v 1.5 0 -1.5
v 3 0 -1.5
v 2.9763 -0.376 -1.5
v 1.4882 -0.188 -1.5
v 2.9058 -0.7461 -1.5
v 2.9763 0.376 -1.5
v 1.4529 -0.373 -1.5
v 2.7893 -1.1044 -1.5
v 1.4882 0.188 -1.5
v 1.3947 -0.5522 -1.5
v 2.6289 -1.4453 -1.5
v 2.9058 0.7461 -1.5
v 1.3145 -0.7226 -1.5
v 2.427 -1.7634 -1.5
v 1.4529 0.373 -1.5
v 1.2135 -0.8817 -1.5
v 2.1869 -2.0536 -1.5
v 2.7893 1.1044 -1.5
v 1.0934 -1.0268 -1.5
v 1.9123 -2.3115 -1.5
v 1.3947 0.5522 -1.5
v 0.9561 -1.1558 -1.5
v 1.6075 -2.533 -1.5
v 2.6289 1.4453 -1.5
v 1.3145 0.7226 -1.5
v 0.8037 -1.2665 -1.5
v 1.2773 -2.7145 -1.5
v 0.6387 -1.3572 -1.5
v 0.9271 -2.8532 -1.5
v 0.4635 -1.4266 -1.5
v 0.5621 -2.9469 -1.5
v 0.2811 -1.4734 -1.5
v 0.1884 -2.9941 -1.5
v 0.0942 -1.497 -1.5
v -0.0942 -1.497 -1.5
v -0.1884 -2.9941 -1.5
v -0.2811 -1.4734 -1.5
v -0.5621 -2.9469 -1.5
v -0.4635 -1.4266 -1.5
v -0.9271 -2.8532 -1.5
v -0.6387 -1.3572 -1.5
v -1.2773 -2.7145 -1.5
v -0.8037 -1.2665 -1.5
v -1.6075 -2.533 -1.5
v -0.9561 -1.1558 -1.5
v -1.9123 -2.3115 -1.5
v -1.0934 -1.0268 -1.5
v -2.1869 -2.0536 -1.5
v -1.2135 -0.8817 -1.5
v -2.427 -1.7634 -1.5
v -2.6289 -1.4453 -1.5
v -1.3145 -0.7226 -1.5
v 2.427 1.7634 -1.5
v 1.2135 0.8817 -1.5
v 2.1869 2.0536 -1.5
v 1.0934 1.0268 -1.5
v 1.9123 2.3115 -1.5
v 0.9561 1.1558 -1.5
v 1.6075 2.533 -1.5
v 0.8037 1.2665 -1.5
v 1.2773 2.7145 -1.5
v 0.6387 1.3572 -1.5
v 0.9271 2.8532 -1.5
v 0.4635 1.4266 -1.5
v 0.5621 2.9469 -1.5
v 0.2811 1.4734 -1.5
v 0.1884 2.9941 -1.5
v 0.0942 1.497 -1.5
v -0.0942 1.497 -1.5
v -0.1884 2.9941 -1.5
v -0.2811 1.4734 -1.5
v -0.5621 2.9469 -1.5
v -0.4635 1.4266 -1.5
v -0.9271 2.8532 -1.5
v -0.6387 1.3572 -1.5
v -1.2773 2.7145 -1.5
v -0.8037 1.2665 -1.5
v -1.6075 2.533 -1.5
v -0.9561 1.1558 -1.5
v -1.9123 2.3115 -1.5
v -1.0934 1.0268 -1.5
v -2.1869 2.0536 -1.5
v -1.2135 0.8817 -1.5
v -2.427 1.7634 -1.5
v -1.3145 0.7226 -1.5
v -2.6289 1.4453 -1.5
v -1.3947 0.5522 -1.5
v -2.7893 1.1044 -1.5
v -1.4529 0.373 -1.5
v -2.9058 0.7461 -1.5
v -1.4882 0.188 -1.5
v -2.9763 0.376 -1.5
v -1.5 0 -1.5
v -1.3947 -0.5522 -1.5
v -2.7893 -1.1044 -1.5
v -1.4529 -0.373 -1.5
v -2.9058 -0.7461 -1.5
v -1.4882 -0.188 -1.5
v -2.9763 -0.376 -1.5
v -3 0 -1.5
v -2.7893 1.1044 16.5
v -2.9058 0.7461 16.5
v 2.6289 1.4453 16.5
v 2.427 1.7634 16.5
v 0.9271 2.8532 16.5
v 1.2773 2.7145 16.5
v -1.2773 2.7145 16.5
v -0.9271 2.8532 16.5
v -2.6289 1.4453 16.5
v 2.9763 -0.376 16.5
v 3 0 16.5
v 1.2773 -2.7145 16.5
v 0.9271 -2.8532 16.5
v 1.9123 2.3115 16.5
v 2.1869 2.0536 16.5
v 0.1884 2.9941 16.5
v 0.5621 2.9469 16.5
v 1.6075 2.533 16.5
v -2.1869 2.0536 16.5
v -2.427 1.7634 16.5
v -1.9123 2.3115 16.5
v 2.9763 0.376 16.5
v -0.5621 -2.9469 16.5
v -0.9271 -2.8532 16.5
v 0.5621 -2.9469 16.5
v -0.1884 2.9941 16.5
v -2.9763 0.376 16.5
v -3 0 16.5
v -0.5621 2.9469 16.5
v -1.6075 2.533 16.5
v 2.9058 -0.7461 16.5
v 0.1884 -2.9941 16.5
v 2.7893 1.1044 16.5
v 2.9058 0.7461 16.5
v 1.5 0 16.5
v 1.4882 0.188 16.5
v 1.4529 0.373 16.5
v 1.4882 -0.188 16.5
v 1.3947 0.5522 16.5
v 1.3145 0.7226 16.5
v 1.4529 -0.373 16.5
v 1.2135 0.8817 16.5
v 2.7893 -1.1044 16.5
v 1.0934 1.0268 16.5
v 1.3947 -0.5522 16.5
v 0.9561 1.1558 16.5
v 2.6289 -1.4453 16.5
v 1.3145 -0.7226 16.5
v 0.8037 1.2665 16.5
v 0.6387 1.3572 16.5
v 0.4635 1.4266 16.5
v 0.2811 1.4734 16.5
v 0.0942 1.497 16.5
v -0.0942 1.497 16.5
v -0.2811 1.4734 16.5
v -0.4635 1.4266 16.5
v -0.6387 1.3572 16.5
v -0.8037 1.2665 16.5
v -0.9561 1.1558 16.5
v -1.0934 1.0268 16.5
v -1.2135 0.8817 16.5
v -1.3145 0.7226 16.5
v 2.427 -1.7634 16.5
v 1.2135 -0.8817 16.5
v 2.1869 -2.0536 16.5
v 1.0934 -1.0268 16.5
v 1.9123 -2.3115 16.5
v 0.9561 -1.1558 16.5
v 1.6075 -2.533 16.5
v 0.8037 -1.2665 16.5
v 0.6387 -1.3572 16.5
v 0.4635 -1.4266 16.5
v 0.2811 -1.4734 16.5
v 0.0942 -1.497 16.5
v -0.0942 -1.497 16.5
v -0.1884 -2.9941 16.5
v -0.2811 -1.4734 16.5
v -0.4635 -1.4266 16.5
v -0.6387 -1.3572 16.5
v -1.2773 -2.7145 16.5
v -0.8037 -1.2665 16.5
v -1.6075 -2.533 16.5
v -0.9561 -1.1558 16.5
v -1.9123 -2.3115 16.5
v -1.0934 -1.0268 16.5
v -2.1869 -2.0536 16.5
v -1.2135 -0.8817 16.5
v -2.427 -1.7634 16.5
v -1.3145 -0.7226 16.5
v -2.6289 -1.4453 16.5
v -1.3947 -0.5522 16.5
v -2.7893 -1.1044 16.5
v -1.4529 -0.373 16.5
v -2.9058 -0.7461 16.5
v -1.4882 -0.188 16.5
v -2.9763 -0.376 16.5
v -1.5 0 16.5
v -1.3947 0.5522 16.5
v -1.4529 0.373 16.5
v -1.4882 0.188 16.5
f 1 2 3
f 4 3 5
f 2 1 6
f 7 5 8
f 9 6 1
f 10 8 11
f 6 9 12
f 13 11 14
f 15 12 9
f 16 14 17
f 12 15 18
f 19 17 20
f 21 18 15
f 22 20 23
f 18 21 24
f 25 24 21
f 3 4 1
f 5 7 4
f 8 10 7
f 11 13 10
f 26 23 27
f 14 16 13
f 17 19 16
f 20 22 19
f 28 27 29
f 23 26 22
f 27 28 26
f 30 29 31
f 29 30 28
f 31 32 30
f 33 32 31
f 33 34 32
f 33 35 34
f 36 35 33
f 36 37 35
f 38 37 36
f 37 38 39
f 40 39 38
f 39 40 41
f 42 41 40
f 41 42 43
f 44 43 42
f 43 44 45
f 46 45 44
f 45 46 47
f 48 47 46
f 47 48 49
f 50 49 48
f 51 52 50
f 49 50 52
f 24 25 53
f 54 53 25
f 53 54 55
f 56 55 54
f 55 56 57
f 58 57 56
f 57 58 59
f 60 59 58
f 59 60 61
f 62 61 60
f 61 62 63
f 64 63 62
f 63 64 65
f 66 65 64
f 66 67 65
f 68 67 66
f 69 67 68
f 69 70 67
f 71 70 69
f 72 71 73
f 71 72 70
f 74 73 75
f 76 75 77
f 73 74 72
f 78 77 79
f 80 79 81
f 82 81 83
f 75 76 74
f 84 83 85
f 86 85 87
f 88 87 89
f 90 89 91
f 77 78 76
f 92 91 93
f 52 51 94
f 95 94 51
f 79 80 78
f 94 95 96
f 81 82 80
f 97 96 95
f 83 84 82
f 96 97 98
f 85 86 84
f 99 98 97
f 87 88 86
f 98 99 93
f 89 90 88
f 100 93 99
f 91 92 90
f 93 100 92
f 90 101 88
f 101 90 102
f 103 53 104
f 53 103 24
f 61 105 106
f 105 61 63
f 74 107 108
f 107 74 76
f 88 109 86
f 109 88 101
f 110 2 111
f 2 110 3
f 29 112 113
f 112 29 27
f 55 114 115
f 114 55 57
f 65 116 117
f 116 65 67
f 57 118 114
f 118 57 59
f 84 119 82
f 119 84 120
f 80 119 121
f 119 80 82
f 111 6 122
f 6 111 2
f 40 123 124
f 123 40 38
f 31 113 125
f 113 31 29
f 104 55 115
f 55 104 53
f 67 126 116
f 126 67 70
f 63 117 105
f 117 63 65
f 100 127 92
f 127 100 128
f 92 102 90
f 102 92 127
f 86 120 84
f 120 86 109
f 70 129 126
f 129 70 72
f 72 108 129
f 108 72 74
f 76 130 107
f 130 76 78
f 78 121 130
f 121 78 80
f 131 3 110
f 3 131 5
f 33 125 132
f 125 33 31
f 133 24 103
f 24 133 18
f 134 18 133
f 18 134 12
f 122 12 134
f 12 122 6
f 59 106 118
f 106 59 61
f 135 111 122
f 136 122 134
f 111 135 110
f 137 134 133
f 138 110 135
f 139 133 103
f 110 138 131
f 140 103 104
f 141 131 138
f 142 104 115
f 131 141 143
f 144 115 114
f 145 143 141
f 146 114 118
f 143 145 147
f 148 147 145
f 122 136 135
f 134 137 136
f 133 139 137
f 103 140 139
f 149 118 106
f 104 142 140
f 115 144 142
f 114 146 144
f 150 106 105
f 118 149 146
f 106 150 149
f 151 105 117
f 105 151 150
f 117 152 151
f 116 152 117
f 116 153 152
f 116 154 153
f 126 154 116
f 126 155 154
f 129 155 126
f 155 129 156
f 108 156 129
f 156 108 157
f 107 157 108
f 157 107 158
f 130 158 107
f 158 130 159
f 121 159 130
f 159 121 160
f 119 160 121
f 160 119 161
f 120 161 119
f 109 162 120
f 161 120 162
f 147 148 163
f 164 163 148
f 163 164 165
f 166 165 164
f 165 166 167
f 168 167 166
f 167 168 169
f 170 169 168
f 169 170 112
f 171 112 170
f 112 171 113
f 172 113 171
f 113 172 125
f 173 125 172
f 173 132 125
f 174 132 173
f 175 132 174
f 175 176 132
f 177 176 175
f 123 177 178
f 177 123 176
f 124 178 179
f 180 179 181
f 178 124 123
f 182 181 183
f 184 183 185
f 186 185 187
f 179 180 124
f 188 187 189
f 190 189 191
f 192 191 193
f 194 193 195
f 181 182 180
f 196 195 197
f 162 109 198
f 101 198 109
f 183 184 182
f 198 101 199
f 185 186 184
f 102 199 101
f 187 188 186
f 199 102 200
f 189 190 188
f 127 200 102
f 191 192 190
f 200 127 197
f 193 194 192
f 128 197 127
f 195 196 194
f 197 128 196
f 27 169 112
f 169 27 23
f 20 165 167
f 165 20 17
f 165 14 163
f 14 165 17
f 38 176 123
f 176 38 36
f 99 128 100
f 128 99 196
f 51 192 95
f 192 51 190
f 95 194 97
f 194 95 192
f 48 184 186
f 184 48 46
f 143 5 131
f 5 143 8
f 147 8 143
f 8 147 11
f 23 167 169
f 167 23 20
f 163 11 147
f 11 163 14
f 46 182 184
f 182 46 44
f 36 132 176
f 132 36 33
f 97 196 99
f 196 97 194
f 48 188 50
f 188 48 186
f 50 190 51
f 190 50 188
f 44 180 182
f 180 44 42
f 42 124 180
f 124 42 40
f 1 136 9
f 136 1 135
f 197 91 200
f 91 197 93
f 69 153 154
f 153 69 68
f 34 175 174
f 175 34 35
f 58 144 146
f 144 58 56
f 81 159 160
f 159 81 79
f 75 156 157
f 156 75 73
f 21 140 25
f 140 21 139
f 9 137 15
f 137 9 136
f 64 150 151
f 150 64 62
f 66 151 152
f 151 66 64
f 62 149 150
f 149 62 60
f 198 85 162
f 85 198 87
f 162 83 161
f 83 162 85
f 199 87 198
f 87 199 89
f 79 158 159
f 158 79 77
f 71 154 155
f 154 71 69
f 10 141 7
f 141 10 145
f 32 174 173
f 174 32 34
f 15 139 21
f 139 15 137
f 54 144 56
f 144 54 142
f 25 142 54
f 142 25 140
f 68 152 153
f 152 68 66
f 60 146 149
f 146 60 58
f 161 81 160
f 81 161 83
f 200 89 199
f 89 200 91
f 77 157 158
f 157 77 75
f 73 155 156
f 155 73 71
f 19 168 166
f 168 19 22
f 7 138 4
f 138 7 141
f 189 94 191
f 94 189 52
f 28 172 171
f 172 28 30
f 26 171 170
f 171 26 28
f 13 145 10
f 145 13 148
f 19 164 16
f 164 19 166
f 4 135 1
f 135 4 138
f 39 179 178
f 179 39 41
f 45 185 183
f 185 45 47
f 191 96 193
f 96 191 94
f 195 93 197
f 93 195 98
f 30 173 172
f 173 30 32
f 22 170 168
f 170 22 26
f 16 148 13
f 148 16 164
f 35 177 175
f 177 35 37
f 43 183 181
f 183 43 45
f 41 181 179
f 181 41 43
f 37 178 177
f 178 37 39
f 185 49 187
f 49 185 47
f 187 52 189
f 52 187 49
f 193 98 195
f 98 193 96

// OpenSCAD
$fn = 50;


difference() {
	union() {
		translate(v = [0, 0, -1.5000000000]) {
			cylinder(h = 3, r = 1.0000000000);
		}
		translate(v = [0, 0, -1.5000000000]) {
			cylinder(h = 18, r = 3.0000000000);
		}
	}
	union() {
		translate(v = [0, 0, -50.0000000000]) {
			cylinder(h = 100, r = 1.5000000000);
		}
	}
}
